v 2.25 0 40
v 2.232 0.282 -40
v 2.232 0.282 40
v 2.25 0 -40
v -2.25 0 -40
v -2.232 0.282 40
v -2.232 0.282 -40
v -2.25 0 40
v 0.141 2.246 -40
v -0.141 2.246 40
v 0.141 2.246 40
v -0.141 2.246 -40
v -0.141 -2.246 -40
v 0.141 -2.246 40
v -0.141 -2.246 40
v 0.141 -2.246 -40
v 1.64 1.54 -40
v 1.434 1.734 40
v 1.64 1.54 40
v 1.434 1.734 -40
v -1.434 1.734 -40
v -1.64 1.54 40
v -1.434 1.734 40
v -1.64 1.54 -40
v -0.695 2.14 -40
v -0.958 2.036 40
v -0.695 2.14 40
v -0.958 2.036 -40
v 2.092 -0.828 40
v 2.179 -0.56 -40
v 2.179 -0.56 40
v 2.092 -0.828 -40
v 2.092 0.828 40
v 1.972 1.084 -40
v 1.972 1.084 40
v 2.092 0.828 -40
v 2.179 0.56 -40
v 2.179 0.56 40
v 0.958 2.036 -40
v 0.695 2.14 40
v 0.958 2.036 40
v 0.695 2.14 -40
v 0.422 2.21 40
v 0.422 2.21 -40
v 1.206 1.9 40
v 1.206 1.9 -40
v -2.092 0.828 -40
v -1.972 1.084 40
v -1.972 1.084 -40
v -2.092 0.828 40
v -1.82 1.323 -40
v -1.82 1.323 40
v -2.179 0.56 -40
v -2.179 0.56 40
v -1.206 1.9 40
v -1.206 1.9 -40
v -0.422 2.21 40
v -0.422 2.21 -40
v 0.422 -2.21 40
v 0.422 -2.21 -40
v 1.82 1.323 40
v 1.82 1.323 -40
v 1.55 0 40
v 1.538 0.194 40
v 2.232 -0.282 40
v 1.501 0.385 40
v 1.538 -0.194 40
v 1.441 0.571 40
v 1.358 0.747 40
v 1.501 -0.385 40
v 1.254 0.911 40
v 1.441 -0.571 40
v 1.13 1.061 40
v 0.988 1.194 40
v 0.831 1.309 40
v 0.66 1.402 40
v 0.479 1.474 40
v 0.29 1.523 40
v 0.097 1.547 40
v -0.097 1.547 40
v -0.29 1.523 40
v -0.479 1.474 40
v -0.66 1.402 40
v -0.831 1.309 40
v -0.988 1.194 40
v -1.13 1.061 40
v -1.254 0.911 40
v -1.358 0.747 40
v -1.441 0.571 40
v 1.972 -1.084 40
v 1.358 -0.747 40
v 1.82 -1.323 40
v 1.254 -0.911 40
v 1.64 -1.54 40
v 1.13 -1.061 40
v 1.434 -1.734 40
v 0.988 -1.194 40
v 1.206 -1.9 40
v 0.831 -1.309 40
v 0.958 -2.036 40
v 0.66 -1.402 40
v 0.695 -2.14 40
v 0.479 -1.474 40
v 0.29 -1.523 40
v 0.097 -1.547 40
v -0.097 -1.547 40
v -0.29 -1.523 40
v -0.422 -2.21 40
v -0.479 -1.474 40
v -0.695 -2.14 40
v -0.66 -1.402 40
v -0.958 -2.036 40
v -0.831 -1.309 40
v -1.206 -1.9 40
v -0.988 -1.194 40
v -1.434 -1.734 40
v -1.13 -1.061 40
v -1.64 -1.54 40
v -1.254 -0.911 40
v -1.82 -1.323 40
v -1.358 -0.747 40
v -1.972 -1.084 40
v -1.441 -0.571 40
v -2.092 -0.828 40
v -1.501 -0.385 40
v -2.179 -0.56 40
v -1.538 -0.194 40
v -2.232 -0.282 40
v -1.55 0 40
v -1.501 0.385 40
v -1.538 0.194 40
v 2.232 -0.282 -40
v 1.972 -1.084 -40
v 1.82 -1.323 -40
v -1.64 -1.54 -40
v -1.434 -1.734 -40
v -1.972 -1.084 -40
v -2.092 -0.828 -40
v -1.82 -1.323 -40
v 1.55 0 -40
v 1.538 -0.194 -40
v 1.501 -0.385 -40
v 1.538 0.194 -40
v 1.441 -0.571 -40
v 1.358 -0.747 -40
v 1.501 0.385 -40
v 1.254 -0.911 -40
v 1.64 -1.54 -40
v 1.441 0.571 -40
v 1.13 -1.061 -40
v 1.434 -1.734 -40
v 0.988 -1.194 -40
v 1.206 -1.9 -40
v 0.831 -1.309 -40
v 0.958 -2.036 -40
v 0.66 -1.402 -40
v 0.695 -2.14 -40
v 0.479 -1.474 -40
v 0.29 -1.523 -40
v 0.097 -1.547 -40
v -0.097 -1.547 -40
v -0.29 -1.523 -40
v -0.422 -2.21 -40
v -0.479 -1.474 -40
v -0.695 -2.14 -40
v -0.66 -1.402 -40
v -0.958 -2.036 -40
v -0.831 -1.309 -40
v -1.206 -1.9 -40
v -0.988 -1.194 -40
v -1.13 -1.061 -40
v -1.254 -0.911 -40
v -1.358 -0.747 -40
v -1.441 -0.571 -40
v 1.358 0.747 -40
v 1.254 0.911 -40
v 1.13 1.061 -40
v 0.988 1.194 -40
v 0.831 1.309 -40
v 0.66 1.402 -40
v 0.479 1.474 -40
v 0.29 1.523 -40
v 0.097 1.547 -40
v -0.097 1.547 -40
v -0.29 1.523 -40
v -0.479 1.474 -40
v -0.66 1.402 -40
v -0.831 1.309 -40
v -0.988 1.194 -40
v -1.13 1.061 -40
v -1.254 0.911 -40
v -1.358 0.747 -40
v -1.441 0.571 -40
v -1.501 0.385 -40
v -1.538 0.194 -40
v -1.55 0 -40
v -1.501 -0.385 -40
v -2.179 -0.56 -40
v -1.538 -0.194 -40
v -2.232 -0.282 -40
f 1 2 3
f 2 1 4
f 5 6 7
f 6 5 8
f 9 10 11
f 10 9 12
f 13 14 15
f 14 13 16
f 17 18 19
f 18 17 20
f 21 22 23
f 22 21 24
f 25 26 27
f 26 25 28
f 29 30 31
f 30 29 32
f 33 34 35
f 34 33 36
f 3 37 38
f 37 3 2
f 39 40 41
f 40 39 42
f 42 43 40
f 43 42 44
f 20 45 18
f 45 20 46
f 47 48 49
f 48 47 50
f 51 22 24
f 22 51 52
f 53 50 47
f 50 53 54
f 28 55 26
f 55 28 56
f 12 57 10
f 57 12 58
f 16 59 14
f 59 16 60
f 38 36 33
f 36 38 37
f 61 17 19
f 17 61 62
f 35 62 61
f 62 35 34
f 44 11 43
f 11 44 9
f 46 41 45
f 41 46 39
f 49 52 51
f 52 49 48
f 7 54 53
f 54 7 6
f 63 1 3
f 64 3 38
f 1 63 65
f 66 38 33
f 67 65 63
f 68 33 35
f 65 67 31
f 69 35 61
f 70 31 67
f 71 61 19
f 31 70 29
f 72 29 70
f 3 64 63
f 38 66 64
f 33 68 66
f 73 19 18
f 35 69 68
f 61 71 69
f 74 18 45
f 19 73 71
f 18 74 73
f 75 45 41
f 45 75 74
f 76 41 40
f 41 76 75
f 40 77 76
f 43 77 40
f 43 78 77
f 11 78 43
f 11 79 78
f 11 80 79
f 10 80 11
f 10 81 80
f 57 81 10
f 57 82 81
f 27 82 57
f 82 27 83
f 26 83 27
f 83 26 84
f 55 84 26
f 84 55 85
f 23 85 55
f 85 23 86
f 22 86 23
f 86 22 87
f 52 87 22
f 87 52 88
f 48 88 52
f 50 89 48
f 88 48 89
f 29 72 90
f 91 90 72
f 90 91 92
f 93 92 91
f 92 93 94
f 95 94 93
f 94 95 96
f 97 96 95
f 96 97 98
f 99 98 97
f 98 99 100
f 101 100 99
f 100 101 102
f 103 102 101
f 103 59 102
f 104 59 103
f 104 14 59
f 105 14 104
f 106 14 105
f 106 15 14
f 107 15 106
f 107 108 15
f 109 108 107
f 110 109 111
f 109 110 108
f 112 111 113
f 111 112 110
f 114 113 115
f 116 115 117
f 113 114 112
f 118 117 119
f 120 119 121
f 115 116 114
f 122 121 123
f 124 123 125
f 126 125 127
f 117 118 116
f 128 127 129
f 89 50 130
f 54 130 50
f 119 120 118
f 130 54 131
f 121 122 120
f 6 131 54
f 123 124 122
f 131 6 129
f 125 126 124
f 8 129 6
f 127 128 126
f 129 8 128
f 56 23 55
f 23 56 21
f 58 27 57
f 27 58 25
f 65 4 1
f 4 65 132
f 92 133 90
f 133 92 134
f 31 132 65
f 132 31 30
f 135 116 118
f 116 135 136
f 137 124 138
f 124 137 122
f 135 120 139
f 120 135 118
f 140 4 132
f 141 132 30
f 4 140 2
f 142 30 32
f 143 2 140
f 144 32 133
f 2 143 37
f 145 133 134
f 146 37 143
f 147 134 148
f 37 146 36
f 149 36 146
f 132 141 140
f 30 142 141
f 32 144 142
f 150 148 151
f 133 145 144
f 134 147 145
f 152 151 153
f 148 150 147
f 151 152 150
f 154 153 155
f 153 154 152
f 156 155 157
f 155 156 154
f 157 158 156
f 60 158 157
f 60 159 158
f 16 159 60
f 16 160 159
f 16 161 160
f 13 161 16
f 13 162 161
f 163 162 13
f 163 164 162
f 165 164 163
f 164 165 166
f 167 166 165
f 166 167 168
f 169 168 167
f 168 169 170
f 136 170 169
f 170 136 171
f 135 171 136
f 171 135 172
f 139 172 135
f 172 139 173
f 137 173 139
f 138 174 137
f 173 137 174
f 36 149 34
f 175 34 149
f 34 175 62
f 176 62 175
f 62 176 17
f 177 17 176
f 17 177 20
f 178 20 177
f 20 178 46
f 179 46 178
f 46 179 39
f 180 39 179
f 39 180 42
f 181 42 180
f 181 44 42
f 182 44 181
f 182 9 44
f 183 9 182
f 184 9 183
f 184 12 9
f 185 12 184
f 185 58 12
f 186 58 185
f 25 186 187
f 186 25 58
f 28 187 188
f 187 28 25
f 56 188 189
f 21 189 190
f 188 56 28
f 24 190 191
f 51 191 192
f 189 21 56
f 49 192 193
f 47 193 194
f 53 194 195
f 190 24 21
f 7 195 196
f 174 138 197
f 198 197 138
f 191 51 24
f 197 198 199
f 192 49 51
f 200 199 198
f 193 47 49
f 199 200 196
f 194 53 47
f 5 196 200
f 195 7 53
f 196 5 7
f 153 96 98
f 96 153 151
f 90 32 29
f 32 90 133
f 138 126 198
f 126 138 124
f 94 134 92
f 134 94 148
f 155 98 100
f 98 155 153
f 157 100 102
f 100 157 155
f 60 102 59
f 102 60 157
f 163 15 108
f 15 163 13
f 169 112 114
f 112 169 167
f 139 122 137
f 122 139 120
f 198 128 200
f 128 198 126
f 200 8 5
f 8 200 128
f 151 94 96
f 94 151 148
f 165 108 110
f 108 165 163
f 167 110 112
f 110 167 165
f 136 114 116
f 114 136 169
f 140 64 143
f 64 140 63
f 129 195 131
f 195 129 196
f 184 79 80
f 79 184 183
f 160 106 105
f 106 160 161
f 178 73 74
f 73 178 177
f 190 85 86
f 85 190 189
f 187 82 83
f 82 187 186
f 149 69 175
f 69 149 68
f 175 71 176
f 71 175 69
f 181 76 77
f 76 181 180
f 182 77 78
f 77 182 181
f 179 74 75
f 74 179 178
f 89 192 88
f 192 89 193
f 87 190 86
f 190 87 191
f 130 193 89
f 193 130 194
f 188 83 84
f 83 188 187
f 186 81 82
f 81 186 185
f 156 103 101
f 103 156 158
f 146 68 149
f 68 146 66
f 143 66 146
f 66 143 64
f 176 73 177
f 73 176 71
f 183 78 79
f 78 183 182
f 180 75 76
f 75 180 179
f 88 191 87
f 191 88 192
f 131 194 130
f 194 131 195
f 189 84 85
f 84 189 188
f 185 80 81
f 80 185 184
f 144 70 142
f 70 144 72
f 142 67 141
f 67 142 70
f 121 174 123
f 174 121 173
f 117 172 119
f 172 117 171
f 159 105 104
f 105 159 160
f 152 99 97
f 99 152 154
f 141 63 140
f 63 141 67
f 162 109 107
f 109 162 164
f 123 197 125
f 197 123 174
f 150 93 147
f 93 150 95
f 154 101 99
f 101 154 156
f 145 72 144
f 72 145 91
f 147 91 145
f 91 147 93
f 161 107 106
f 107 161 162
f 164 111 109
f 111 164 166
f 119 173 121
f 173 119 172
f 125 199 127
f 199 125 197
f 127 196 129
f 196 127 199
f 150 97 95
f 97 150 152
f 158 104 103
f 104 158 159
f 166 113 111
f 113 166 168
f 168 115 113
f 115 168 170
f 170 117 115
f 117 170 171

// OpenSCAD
$fn = 50;


difference() {
	union() {
		translate(v = [0, 0, -40.0000000000]) {
			cylinder(h = 80, r = 2.2500000000);
		}
	}
	union() {
		translate(v = [0, 0, -100.0000000000]) {
			cylinder(h = 200, r = 1.5500000000);
		}
	}
}
